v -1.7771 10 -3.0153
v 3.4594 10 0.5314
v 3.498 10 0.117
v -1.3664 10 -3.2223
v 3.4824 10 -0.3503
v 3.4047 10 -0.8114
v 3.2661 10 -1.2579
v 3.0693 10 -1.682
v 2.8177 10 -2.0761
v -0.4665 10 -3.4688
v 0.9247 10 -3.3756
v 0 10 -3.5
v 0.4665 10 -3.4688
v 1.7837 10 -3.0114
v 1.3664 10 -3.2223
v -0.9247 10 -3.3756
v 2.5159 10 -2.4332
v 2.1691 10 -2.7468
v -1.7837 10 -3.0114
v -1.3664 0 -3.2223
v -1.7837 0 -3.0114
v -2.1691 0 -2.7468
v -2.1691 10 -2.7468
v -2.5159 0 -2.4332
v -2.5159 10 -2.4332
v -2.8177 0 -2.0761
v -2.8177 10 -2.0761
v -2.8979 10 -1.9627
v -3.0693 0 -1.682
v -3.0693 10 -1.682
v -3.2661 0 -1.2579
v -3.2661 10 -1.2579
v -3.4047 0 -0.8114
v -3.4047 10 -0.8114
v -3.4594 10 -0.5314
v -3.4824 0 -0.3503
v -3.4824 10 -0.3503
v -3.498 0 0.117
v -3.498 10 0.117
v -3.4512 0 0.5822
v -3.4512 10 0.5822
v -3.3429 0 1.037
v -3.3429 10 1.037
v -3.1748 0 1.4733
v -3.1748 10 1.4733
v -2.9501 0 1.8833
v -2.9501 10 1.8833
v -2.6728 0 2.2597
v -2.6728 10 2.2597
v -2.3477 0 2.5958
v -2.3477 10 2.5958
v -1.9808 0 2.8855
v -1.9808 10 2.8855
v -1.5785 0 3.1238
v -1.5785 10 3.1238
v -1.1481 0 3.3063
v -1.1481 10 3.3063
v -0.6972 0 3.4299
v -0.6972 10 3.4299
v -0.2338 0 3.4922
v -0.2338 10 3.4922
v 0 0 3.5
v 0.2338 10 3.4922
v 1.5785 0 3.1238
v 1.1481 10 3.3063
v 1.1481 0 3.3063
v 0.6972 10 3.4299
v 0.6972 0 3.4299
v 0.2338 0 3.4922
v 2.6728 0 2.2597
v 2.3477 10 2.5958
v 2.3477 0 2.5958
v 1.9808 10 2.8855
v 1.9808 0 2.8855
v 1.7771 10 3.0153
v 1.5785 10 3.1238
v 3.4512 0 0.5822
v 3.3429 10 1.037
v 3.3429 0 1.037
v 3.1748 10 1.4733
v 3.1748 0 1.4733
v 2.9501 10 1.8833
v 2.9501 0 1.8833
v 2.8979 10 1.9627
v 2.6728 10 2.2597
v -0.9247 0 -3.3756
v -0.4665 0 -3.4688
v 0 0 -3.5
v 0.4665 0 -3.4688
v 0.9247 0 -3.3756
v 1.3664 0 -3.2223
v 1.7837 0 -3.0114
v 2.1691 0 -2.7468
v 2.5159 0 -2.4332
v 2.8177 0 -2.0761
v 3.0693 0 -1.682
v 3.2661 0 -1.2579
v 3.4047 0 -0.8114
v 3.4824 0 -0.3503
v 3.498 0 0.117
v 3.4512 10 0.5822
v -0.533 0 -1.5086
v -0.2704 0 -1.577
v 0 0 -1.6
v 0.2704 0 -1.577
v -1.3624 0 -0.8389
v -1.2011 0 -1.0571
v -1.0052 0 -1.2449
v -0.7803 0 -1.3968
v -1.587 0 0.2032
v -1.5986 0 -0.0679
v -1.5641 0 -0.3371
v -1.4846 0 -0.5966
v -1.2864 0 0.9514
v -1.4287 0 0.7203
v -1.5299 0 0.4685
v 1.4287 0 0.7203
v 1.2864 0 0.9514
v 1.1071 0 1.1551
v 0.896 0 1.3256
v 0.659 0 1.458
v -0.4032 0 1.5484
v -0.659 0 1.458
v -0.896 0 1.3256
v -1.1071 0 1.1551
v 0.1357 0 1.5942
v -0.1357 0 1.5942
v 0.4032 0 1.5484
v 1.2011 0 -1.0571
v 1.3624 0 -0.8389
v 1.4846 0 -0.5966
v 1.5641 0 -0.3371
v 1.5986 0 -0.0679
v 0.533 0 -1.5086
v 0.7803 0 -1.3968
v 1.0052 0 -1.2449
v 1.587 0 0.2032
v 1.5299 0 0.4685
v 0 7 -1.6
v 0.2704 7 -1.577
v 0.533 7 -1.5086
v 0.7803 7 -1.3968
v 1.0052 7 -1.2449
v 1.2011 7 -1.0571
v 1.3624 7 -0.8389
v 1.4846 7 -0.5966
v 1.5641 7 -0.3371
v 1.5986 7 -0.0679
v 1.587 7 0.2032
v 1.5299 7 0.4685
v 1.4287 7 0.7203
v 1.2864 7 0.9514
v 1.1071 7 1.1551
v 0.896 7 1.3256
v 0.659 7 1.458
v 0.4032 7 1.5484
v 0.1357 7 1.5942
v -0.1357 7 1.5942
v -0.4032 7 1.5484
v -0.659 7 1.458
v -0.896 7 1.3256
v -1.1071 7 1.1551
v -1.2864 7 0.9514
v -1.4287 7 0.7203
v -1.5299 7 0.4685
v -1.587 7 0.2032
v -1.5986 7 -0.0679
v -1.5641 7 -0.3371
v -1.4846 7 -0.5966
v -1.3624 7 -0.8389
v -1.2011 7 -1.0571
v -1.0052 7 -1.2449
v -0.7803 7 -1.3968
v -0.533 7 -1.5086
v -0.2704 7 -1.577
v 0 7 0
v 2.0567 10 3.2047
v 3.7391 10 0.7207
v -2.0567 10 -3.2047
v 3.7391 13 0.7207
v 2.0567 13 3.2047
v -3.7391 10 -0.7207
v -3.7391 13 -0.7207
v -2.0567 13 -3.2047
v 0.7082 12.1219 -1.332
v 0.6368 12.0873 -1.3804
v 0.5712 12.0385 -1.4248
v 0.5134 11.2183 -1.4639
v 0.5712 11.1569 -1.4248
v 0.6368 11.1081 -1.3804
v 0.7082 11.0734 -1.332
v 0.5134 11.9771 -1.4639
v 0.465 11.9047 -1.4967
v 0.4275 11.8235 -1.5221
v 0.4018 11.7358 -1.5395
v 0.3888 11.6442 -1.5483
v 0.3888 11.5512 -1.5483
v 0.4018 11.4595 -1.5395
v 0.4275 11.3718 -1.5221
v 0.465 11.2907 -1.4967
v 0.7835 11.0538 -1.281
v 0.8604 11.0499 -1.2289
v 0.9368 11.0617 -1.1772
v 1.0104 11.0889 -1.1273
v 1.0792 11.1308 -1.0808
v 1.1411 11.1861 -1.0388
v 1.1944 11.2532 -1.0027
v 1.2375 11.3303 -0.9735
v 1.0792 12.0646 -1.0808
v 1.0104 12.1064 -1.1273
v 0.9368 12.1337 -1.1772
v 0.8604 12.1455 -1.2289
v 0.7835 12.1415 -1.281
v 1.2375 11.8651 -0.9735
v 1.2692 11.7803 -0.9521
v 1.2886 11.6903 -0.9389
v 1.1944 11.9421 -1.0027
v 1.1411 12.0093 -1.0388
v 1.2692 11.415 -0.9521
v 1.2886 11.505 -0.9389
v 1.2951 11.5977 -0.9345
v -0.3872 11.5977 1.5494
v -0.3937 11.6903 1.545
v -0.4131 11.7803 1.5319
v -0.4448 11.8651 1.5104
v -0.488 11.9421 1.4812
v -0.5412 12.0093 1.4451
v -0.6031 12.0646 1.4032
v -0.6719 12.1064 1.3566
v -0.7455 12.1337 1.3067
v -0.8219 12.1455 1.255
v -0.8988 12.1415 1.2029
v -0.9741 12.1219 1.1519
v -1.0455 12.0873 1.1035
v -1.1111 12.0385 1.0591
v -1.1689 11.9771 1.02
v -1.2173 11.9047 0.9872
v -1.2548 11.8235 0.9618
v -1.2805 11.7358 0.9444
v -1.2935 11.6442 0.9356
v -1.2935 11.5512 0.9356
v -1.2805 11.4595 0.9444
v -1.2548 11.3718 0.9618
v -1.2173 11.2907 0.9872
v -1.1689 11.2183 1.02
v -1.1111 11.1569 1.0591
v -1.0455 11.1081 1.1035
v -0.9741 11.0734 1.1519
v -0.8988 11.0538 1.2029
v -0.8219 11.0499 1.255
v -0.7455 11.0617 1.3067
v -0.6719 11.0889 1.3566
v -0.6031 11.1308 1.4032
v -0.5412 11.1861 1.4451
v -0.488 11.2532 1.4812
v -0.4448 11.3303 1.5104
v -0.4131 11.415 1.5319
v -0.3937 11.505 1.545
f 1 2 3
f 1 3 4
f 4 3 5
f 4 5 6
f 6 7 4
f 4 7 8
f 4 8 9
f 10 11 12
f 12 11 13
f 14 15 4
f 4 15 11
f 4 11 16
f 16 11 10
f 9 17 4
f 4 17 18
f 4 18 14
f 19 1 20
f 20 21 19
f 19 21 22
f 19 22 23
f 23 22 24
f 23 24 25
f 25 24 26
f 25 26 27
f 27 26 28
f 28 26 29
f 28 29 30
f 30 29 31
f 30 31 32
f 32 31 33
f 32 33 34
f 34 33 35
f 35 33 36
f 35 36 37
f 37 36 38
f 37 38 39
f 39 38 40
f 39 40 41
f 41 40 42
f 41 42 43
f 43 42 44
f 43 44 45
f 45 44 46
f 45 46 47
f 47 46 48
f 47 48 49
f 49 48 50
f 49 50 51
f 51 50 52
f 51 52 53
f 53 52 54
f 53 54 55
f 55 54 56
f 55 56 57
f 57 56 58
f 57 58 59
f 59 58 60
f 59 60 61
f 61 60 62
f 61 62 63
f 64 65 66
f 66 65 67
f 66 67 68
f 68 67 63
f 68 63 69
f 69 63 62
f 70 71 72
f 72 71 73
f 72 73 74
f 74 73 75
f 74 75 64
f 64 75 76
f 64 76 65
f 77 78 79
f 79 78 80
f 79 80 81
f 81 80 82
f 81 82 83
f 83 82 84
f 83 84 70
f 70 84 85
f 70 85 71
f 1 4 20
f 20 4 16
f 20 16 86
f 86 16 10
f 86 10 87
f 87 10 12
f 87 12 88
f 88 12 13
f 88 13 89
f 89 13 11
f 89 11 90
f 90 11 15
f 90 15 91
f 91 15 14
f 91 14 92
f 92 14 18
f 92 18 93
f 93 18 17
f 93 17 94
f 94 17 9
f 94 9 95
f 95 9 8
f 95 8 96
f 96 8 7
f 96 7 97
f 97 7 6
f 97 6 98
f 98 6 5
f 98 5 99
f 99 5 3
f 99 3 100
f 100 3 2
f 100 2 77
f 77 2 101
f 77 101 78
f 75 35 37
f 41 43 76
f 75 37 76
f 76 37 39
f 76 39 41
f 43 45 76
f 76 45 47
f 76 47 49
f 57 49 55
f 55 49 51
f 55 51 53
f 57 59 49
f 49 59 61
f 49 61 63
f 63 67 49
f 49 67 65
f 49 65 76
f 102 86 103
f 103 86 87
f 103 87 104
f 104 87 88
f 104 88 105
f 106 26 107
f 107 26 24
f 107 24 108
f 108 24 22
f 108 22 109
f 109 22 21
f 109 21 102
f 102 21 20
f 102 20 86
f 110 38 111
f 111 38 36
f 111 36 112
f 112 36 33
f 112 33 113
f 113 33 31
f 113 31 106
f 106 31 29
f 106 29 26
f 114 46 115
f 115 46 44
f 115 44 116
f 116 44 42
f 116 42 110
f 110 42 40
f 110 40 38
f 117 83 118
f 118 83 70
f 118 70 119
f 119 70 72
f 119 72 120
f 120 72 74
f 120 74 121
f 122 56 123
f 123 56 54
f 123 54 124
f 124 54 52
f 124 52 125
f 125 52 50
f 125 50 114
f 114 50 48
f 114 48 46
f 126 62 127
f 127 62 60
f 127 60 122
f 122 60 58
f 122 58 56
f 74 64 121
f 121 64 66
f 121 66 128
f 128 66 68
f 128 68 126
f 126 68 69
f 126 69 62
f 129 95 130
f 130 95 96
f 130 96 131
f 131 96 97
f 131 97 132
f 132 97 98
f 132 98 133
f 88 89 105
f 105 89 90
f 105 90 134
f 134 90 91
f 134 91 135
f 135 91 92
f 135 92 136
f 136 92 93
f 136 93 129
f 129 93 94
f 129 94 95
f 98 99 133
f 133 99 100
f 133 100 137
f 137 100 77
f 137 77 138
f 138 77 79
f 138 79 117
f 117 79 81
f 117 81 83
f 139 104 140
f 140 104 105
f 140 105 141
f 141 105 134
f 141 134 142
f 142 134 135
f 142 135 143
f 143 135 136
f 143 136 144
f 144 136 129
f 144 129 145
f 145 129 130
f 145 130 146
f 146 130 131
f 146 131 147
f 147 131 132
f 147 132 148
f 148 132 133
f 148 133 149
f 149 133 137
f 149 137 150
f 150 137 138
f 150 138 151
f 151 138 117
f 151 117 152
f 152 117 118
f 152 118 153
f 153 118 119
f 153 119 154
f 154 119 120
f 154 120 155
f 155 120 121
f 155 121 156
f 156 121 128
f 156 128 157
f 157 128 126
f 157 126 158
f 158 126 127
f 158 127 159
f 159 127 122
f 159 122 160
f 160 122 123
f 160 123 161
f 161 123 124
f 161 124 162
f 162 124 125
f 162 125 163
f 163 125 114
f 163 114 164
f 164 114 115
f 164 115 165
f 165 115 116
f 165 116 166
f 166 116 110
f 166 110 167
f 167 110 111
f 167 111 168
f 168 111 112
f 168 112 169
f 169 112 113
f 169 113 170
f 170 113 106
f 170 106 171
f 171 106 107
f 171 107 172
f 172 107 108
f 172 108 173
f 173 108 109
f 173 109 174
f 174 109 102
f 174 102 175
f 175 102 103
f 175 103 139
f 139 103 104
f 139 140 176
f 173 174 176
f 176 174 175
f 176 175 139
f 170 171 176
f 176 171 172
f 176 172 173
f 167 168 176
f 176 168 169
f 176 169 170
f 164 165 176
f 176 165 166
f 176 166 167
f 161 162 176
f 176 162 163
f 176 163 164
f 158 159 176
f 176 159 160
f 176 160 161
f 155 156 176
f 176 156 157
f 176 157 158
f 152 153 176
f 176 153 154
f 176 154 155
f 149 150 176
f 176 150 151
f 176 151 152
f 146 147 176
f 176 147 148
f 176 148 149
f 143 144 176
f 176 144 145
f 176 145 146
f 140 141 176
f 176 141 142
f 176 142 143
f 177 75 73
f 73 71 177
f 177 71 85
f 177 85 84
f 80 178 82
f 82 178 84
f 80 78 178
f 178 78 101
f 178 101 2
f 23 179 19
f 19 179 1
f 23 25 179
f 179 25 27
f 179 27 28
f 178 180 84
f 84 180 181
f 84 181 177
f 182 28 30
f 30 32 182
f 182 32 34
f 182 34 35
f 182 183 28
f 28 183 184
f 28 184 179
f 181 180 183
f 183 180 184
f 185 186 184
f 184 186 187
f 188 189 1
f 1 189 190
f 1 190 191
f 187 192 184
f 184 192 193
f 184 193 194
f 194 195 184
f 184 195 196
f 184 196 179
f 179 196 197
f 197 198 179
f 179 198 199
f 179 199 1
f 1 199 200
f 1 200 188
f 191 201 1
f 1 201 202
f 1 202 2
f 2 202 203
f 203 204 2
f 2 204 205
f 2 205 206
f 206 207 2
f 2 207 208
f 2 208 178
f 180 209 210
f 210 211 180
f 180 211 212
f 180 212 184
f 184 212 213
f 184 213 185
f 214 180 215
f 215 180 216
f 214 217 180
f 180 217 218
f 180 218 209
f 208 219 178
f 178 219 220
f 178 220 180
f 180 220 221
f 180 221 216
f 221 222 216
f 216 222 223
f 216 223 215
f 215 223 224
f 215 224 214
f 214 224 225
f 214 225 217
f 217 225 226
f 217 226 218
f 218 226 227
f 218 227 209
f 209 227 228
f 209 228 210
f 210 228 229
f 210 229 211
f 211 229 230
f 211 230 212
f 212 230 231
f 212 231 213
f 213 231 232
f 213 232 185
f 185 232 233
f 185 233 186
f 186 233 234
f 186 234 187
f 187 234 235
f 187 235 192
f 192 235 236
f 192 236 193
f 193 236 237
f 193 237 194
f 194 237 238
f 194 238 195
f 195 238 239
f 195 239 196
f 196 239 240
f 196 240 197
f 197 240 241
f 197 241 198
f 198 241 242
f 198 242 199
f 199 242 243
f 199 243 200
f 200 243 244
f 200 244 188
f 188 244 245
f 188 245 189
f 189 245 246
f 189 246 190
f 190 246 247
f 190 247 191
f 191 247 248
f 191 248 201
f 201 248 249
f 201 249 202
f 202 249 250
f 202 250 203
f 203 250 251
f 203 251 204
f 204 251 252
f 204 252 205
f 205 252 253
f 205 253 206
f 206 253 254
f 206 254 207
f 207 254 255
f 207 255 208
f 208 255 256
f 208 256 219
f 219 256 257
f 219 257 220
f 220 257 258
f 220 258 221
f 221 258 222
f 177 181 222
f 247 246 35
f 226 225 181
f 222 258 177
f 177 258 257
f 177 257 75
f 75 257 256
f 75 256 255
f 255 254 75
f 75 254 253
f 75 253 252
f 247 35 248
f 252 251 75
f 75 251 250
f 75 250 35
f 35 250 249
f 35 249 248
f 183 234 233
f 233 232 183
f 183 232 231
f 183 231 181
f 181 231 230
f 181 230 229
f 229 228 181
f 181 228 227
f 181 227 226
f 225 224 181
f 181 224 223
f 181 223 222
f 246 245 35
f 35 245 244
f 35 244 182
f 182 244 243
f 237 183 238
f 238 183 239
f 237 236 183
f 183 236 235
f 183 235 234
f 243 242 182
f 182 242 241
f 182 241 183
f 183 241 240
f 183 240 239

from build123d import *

# Parameters (mm, degrees)
SKETCH_1_R           = 3.5
EXTRUDE_2_DEPTH      = 10
SKETCH_2_R           = 1.6
CUT_EXTRUDE_1_DEPTH  = 7
EXTRUDE_4_DEPTH      = 1.5
EXTRUDE_4_DEPTH_BACK = 1.5
SKETCH_3_W           = 7
SKETCH_3_H           = 3
SKETCH_3_R           = 0.54827979


with BuildPart() as part:
    # Эскиз1 → Бобышка-Вытянуть2 (new body)
    with BuildSketch(Plane(origin=(0, 0, 0), x_dir=(1, 0, 0), z_dir=(0, 1, 0))):
        Circle(SKETCH_1_R)
    extrude(amount=EXTRUDE_2_DEPTH)

    # Эскиз2 → Вырез-Вытянуть1 (cut)
    with BuildSketch(Plane.XZ):
        Circle(SKETCH_2_R)
    extrude(amount=-CUT_EXTRUDE_1_DEPTH, mode=Mode.SUBTRACT)

    # Эскиз3 → Бобышка-Вытянуть4 (add, two sides: drawn at the far end of the back side and taken through both)
    with BuildSketch(Plane(origin=(0, 0, 0), x_dir=(0.8279714138688067, 0, 0.5607703075378451), z_dir=(-0.5607703075378451, 0, 0.8279714138688067)).offset(-EXTRUDE_4_DEPTH_BACK)):
        with Locations((0, 11.5)):
            Rectangle(SKETCH_3_W, SKETCH_3_H)
        with Locations((0, 11.597681641)):
            Circle(SKETCH_3_R, mode=Mode.SUBTRACT)
    extrude(amount=EXTRUDE_4_DEPTH + EXTRUDE_4_DEPTH_BACK)


solid = part.part
